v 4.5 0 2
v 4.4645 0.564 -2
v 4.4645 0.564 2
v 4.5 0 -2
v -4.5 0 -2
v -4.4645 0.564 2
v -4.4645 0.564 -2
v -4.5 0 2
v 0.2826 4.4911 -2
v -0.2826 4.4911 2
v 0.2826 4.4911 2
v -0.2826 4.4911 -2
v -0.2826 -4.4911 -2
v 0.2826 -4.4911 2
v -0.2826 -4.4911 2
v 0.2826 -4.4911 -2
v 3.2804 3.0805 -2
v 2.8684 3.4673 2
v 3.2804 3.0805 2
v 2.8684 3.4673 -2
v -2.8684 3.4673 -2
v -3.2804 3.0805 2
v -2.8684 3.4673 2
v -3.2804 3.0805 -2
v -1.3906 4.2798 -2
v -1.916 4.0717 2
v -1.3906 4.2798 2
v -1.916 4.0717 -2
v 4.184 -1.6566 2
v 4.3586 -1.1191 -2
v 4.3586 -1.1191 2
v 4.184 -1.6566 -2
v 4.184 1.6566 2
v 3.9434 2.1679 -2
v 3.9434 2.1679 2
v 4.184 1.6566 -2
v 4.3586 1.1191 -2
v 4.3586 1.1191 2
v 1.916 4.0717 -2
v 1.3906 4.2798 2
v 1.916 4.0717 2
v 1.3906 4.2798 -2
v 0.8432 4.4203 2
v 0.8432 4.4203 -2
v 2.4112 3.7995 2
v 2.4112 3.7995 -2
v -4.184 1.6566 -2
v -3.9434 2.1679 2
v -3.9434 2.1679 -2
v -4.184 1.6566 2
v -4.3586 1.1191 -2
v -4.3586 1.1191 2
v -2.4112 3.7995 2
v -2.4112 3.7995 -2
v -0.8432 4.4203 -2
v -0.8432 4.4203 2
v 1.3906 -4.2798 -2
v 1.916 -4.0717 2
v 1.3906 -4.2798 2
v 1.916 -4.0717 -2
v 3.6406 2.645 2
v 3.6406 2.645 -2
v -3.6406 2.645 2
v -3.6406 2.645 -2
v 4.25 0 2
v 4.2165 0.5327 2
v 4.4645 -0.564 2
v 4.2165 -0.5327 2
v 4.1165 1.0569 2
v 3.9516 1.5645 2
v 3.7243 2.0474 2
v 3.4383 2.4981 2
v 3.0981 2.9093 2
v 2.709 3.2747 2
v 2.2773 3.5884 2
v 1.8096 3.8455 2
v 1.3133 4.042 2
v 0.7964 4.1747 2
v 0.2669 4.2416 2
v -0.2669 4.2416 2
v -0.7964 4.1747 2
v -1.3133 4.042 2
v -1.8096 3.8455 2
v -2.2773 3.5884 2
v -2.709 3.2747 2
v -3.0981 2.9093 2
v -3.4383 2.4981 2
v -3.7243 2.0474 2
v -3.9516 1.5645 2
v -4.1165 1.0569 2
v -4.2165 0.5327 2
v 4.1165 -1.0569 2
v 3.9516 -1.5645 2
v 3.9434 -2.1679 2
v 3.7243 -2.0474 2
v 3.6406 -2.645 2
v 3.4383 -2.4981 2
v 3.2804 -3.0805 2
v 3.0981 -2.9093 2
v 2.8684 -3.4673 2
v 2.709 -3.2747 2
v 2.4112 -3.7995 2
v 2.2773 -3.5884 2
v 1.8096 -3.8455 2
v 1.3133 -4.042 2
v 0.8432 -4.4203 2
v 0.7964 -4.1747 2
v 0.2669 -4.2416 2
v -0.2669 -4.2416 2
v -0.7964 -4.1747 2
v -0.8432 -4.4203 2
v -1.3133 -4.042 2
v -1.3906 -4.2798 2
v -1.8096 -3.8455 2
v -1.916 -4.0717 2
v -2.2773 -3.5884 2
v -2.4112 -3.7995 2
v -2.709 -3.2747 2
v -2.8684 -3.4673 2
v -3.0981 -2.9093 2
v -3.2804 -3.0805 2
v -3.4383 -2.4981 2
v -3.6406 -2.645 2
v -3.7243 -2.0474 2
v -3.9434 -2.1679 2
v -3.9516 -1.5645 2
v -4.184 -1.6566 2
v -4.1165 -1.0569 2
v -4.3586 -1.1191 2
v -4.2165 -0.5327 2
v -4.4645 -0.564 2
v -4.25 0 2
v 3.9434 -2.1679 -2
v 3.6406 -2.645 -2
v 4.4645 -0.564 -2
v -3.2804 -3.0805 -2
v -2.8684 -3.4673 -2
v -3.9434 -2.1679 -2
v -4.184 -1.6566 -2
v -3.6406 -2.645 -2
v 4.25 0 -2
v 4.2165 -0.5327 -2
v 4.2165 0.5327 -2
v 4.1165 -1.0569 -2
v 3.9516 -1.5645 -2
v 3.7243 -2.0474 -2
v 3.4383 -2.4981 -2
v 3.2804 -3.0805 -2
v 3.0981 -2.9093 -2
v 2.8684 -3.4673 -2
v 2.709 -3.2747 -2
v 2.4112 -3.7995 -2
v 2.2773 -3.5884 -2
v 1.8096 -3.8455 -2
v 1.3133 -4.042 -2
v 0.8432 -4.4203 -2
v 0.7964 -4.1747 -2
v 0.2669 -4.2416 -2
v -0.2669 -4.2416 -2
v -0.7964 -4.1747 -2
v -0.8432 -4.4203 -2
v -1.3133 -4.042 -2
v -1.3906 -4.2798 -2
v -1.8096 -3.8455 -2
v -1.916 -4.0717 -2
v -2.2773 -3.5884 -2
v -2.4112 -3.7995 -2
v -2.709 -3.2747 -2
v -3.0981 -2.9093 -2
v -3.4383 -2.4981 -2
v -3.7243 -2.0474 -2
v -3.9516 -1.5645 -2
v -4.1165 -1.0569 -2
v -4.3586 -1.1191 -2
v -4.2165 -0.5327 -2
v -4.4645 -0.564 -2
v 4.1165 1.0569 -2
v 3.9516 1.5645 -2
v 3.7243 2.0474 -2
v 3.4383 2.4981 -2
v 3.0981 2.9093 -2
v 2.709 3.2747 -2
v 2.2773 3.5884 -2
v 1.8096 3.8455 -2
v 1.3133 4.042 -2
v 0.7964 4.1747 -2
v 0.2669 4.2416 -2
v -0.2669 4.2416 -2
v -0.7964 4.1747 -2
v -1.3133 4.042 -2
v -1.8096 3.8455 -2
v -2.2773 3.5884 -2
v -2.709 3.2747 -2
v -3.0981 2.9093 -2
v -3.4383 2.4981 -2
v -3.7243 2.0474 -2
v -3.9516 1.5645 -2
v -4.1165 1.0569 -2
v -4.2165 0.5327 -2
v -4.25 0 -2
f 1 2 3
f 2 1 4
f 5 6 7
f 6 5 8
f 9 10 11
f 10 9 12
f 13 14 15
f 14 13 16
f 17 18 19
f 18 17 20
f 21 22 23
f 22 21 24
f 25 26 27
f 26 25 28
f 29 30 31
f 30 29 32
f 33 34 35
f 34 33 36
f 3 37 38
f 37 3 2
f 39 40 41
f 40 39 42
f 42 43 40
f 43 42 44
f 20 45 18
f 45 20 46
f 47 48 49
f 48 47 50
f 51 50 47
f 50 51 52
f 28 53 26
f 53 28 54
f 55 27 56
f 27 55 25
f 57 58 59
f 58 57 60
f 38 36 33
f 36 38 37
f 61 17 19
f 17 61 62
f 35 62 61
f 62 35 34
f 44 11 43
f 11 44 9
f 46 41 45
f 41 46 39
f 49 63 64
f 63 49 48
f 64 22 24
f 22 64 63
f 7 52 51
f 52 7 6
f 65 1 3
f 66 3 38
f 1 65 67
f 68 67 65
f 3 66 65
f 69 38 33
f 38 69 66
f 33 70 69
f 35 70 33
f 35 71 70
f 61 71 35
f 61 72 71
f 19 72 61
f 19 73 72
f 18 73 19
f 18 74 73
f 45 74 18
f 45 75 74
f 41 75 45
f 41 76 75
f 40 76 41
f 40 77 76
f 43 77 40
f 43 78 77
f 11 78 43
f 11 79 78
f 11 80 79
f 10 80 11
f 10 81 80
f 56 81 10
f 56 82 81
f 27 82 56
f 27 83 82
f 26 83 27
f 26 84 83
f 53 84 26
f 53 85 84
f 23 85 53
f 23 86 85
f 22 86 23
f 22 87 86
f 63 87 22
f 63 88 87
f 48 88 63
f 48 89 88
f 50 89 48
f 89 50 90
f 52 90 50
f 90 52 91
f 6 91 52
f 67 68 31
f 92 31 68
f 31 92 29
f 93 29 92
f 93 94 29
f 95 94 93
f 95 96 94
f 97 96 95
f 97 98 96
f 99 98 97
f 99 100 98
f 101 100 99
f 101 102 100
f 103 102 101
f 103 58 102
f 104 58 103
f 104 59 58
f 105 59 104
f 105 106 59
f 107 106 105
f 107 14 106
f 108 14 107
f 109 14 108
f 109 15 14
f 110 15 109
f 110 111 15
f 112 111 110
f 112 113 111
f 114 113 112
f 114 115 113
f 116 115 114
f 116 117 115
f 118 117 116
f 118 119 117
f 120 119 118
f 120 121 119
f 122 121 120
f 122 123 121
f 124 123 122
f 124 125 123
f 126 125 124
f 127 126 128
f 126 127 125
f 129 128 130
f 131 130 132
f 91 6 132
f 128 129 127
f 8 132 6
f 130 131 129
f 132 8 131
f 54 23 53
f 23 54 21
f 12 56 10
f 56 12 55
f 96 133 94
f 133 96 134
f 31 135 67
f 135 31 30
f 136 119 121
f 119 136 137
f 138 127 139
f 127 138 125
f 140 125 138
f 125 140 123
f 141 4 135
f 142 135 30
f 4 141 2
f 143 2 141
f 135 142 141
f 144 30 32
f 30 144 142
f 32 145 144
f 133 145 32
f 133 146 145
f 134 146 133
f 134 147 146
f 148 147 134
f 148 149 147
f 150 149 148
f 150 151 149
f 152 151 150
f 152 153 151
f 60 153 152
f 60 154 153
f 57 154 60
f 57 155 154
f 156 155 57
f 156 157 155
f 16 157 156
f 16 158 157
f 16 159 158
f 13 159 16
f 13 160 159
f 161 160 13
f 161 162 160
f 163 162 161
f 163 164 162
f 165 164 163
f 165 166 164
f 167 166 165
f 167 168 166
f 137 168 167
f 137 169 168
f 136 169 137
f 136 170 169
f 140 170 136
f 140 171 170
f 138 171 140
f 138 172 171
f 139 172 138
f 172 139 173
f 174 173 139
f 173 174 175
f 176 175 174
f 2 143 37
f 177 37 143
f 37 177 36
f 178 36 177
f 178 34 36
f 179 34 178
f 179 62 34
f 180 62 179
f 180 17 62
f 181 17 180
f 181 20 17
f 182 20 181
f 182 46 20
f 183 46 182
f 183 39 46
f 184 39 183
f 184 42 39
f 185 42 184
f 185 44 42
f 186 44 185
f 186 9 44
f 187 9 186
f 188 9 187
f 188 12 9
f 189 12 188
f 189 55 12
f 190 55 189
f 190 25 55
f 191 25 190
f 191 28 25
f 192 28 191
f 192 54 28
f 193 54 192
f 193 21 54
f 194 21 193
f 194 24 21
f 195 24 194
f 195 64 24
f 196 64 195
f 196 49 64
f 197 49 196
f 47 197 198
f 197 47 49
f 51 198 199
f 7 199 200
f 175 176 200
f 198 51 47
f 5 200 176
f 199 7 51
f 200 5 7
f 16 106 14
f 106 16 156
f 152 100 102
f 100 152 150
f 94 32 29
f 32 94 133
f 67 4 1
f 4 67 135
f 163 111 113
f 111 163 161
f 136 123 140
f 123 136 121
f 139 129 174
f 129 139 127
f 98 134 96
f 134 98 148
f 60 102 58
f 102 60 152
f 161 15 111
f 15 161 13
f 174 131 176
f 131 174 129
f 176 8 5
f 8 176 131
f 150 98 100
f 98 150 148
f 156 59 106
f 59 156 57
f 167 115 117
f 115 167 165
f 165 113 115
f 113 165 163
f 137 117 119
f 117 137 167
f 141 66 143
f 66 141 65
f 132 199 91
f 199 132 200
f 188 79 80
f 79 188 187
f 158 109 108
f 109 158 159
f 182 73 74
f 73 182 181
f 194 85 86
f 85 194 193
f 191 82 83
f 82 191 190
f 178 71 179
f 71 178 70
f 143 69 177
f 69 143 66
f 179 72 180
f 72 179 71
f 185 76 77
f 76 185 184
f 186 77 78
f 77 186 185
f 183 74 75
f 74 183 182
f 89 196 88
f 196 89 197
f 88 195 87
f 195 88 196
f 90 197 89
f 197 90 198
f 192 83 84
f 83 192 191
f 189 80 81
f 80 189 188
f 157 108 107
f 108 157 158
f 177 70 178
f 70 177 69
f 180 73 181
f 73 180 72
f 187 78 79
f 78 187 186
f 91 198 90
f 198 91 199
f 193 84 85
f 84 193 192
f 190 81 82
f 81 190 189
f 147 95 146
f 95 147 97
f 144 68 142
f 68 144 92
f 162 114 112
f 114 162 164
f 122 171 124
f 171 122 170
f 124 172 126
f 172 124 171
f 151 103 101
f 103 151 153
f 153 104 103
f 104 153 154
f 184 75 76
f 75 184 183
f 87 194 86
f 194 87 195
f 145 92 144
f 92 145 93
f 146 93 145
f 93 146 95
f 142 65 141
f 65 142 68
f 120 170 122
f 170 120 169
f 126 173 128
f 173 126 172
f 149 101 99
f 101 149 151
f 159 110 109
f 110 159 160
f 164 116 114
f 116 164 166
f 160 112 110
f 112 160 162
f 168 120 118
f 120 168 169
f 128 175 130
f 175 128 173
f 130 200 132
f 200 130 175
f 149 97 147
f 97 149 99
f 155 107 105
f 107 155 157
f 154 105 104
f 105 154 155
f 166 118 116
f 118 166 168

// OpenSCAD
$fn = 50;


difference() {
	union() {
		translate(v = [0, 0, -2.0000000000]) {
			cylinder(h = 4, r = 4.5000000000);
		}
	}
	union() {
		translate(v = [0, 0, -100.0000000000]) {
			cylinder(h = 200, r = 4.2500000000);
		}
	}
}
